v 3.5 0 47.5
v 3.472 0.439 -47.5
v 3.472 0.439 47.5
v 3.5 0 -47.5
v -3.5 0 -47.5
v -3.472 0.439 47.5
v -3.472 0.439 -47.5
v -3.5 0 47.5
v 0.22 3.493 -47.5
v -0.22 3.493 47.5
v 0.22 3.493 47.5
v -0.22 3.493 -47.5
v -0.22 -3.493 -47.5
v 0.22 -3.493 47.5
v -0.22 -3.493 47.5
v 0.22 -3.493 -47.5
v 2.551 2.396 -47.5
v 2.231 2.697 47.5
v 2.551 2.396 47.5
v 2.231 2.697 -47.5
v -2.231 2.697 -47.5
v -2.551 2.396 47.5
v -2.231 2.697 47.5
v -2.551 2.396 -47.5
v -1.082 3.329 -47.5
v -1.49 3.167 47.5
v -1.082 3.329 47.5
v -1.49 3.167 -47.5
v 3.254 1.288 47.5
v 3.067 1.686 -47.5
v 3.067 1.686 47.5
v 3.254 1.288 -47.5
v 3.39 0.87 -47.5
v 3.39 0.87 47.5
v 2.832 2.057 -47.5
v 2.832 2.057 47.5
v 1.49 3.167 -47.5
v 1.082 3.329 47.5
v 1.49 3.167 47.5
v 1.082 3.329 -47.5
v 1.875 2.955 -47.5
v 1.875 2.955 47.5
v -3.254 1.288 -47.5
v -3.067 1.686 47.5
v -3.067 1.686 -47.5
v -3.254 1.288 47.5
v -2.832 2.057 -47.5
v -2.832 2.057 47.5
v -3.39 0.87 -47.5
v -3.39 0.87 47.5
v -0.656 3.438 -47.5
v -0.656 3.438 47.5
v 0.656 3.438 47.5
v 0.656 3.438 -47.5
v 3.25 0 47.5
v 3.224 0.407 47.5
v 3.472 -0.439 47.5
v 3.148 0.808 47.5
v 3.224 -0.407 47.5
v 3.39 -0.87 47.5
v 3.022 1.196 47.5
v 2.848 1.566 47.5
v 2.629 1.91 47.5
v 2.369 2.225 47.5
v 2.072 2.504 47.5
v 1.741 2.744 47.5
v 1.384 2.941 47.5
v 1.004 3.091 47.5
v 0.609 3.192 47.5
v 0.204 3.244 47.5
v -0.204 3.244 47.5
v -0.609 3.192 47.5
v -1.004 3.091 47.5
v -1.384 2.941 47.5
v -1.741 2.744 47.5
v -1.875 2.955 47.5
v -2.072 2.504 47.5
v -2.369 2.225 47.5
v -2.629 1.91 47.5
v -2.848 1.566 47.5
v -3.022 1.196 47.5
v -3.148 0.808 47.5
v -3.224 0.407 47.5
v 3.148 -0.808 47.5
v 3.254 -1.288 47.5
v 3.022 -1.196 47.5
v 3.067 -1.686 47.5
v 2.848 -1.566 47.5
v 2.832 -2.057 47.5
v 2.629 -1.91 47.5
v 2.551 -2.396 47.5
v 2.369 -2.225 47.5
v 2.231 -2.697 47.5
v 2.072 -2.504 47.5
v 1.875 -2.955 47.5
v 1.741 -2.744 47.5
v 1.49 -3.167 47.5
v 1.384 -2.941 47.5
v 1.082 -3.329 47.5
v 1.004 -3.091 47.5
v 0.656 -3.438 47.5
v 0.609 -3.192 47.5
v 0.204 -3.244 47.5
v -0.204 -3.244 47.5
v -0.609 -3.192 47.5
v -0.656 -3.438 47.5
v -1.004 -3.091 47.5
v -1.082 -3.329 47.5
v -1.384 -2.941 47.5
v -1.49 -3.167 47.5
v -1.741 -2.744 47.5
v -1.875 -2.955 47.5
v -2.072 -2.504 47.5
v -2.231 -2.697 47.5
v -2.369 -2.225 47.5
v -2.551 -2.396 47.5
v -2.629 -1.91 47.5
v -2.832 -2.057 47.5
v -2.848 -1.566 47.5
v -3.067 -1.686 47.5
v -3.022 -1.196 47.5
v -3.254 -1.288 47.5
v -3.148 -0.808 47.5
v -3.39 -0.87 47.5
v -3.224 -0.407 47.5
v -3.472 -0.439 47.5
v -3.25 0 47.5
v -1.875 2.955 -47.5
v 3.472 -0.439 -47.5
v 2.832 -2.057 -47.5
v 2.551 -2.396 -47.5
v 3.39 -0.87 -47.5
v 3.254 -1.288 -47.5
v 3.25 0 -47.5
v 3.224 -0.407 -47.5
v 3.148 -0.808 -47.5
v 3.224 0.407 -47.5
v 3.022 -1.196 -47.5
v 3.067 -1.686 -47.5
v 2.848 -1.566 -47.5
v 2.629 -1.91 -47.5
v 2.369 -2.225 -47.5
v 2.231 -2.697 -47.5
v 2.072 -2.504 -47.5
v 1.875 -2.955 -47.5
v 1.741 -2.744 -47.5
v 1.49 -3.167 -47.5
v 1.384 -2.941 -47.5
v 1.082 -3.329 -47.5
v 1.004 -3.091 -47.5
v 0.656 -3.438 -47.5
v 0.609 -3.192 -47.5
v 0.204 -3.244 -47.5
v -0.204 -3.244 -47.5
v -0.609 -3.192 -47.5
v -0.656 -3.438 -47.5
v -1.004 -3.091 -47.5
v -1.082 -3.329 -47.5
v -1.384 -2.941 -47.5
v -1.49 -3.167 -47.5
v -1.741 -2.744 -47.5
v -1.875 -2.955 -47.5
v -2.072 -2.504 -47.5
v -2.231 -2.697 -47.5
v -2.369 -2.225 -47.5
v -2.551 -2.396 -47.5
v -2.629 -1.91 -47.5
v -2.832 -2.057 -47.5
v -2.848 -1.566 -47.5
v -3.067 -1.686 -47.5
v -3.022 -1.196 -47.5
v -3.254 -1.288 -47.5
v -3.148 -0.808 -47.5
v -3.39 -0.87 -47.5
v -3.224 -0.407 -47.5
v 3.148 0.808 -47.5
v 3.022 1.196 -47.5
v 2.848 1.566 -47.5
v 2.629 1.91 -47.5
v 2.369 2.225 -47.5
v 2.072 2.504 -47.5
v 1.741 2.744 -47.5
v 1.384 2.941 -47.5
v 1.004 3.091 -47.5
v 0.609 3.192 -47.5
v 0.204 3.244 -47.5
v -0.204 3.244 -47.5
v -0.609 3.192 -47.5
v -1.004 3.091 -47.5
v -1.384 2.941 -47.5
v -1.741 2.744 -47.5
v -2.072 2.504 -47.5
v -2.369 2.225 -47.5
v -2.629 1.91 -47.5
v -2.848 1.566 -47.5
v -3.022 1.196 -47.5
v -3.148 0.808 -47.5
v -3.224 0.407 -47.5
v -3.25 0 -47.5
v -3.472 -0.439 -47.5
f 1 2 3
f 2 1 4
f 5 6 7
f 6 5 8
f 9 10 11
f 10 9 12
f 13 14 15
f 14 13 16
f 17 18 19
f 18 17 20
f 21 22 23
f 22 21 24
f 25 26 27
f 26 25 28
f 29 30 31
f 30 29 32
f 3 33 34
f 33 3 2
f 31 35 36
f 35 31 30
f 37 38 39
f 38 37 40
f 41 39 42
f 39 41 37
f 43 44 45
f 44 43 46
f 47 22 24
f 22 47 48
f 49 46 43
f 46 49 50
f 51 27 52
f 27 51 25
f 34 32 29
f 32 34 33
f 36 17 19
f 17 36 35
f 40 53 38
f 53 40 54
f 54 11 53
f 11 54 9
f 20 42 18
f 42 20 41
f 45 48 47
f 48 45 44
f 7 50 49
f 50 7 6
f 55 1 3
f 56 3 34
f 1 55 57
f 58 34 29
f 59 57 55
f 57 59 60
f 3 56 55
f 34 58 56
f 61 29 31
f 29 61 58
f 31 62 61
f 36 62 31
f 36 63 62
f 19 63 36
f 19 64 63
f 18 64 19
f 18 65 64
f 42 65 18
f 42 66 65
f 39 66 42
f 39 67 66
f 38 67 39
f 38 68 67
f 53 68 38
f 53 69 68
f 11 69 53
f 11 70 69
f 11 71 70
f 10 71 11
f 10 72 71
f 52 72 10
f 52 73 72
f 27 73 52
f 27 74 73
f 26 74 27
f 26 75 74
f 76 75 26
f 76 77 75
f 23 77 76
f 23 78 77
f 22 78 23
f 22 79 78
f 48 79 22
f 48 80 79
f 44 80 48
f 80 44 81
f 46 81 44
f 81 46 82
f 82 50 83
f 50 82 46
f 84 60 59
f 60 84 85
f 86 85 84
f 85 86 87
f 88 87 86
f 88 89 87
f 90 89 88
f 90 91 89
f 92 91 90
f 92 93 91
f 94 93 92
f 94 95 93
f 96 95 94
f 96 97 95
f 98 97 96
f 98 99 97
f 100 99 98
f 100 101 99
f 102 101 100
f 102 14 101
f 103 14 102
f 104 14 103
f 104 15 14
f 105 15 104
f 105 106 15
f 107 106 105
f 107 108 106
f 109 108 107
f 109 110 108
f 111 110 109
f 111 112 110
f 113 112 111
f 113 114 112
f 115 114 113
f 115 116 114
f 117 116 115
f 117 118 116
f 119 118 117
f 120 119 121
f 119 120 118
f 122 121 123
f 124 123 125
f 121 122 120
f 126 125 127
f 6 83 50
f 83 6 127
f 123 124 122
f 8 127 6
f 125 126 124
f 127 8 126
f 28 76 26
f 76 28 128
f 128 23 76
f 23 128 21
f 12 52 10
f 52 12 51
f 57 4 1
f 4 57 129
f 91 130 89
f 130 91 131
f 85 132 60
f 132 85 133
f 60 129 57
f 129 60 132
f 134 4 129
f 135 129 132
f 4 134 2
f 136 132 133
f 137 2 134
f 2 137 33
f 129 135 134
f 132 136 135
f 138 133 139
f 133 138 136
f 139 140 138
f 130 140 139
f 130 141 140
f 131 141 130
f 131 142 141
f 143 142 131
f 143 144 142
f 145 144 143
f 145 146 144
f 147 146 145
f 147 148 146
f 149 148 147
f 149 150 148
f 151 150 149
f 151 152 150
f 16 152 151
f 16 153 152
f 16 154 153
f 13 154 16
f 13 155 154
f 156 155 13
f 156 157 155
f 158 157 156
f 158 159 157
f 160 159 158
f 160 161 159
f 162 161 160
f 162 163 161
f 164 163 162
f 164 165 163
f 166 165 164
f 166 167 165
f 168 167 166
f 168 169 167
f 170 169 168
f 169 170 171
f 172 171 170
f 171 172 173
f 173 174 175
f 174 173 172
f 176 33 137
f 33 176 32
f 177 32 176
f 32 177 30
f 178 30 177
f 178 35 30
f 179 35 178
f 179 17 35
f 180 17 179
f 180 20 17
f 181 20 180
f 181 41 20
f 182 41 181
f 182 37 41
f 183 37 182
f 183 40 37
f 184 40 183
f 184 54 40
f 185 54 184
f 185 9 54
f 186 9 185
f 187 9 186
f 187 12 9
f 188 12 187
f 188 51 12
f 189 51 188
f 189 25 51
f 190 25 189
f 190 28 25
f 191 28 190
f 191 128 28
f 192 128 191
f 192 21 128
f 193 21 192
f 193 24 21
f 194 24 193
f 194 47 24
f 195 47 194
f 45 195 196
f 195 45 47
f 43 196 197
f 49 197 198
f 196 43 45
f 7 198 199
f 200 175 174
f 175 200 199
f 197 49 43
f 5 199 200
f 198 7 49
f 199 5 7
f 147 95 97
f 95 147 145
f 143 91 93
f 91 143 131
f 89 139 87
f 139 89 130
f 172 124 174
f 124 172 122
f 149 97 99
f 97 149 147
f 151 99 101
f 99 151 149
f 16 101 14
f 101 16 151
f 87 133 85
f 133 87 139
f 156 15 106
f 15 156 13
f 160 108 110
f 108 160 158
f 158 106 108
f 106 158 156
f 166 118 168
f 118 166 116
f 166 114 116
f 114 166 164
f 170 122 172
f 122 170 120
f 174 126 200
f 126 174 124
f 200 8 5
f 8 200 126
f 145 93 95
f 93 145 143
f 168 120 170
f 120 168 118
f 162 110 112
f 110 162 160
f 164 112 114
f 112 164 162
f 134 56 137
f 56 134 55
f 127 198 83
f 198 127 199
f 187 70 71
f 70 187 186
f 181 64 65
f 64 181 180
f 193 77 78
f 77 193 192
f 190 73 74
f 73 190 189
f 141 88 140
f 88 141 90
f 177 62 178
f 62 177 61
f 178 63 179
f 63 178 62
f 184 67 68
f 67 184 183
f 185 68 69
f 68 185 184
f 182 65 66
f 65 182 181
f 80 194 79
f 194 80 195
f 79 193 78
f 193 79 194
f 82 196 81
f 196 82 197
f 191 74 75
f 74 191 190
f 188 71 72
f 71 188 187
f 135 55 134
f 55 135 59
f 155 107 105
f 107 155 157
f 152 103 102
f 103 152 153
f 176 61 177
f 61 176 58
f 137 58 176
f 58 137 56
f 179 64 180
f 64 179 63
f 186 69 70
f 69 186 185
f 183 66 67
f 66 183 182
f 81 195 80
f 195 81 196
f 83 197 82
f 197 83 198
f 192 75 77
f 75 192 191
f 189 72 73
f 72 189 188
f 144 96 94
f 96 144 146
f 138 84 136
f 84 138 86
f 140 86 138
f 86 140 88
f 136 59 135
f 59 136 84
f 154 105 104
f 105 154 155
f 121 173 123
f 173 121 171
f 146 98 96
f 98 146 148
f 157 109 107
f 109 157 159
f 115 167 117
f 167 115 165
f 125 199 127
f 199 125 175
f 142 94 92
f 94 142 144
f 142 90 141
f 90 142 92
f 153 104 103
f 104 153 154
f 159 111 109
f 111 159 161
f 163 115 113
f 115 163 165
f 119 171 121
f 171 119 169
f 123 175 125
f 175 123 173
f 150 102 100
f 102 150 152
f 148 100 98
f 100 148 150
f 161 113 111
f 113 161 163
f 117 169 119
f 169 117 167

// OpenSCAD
$fn = 50;


difference() {
	union() {
		translate(v = [0, 0, -47.5000000000]) {
			cylinder(h = 95, r = 3.5000000000);
		}
	}
	union() {
		translate(v = [0, 0, -100.0000000000]) {
			cylinder(h = 200, r = 3.2500000000);
		}
	}
}
